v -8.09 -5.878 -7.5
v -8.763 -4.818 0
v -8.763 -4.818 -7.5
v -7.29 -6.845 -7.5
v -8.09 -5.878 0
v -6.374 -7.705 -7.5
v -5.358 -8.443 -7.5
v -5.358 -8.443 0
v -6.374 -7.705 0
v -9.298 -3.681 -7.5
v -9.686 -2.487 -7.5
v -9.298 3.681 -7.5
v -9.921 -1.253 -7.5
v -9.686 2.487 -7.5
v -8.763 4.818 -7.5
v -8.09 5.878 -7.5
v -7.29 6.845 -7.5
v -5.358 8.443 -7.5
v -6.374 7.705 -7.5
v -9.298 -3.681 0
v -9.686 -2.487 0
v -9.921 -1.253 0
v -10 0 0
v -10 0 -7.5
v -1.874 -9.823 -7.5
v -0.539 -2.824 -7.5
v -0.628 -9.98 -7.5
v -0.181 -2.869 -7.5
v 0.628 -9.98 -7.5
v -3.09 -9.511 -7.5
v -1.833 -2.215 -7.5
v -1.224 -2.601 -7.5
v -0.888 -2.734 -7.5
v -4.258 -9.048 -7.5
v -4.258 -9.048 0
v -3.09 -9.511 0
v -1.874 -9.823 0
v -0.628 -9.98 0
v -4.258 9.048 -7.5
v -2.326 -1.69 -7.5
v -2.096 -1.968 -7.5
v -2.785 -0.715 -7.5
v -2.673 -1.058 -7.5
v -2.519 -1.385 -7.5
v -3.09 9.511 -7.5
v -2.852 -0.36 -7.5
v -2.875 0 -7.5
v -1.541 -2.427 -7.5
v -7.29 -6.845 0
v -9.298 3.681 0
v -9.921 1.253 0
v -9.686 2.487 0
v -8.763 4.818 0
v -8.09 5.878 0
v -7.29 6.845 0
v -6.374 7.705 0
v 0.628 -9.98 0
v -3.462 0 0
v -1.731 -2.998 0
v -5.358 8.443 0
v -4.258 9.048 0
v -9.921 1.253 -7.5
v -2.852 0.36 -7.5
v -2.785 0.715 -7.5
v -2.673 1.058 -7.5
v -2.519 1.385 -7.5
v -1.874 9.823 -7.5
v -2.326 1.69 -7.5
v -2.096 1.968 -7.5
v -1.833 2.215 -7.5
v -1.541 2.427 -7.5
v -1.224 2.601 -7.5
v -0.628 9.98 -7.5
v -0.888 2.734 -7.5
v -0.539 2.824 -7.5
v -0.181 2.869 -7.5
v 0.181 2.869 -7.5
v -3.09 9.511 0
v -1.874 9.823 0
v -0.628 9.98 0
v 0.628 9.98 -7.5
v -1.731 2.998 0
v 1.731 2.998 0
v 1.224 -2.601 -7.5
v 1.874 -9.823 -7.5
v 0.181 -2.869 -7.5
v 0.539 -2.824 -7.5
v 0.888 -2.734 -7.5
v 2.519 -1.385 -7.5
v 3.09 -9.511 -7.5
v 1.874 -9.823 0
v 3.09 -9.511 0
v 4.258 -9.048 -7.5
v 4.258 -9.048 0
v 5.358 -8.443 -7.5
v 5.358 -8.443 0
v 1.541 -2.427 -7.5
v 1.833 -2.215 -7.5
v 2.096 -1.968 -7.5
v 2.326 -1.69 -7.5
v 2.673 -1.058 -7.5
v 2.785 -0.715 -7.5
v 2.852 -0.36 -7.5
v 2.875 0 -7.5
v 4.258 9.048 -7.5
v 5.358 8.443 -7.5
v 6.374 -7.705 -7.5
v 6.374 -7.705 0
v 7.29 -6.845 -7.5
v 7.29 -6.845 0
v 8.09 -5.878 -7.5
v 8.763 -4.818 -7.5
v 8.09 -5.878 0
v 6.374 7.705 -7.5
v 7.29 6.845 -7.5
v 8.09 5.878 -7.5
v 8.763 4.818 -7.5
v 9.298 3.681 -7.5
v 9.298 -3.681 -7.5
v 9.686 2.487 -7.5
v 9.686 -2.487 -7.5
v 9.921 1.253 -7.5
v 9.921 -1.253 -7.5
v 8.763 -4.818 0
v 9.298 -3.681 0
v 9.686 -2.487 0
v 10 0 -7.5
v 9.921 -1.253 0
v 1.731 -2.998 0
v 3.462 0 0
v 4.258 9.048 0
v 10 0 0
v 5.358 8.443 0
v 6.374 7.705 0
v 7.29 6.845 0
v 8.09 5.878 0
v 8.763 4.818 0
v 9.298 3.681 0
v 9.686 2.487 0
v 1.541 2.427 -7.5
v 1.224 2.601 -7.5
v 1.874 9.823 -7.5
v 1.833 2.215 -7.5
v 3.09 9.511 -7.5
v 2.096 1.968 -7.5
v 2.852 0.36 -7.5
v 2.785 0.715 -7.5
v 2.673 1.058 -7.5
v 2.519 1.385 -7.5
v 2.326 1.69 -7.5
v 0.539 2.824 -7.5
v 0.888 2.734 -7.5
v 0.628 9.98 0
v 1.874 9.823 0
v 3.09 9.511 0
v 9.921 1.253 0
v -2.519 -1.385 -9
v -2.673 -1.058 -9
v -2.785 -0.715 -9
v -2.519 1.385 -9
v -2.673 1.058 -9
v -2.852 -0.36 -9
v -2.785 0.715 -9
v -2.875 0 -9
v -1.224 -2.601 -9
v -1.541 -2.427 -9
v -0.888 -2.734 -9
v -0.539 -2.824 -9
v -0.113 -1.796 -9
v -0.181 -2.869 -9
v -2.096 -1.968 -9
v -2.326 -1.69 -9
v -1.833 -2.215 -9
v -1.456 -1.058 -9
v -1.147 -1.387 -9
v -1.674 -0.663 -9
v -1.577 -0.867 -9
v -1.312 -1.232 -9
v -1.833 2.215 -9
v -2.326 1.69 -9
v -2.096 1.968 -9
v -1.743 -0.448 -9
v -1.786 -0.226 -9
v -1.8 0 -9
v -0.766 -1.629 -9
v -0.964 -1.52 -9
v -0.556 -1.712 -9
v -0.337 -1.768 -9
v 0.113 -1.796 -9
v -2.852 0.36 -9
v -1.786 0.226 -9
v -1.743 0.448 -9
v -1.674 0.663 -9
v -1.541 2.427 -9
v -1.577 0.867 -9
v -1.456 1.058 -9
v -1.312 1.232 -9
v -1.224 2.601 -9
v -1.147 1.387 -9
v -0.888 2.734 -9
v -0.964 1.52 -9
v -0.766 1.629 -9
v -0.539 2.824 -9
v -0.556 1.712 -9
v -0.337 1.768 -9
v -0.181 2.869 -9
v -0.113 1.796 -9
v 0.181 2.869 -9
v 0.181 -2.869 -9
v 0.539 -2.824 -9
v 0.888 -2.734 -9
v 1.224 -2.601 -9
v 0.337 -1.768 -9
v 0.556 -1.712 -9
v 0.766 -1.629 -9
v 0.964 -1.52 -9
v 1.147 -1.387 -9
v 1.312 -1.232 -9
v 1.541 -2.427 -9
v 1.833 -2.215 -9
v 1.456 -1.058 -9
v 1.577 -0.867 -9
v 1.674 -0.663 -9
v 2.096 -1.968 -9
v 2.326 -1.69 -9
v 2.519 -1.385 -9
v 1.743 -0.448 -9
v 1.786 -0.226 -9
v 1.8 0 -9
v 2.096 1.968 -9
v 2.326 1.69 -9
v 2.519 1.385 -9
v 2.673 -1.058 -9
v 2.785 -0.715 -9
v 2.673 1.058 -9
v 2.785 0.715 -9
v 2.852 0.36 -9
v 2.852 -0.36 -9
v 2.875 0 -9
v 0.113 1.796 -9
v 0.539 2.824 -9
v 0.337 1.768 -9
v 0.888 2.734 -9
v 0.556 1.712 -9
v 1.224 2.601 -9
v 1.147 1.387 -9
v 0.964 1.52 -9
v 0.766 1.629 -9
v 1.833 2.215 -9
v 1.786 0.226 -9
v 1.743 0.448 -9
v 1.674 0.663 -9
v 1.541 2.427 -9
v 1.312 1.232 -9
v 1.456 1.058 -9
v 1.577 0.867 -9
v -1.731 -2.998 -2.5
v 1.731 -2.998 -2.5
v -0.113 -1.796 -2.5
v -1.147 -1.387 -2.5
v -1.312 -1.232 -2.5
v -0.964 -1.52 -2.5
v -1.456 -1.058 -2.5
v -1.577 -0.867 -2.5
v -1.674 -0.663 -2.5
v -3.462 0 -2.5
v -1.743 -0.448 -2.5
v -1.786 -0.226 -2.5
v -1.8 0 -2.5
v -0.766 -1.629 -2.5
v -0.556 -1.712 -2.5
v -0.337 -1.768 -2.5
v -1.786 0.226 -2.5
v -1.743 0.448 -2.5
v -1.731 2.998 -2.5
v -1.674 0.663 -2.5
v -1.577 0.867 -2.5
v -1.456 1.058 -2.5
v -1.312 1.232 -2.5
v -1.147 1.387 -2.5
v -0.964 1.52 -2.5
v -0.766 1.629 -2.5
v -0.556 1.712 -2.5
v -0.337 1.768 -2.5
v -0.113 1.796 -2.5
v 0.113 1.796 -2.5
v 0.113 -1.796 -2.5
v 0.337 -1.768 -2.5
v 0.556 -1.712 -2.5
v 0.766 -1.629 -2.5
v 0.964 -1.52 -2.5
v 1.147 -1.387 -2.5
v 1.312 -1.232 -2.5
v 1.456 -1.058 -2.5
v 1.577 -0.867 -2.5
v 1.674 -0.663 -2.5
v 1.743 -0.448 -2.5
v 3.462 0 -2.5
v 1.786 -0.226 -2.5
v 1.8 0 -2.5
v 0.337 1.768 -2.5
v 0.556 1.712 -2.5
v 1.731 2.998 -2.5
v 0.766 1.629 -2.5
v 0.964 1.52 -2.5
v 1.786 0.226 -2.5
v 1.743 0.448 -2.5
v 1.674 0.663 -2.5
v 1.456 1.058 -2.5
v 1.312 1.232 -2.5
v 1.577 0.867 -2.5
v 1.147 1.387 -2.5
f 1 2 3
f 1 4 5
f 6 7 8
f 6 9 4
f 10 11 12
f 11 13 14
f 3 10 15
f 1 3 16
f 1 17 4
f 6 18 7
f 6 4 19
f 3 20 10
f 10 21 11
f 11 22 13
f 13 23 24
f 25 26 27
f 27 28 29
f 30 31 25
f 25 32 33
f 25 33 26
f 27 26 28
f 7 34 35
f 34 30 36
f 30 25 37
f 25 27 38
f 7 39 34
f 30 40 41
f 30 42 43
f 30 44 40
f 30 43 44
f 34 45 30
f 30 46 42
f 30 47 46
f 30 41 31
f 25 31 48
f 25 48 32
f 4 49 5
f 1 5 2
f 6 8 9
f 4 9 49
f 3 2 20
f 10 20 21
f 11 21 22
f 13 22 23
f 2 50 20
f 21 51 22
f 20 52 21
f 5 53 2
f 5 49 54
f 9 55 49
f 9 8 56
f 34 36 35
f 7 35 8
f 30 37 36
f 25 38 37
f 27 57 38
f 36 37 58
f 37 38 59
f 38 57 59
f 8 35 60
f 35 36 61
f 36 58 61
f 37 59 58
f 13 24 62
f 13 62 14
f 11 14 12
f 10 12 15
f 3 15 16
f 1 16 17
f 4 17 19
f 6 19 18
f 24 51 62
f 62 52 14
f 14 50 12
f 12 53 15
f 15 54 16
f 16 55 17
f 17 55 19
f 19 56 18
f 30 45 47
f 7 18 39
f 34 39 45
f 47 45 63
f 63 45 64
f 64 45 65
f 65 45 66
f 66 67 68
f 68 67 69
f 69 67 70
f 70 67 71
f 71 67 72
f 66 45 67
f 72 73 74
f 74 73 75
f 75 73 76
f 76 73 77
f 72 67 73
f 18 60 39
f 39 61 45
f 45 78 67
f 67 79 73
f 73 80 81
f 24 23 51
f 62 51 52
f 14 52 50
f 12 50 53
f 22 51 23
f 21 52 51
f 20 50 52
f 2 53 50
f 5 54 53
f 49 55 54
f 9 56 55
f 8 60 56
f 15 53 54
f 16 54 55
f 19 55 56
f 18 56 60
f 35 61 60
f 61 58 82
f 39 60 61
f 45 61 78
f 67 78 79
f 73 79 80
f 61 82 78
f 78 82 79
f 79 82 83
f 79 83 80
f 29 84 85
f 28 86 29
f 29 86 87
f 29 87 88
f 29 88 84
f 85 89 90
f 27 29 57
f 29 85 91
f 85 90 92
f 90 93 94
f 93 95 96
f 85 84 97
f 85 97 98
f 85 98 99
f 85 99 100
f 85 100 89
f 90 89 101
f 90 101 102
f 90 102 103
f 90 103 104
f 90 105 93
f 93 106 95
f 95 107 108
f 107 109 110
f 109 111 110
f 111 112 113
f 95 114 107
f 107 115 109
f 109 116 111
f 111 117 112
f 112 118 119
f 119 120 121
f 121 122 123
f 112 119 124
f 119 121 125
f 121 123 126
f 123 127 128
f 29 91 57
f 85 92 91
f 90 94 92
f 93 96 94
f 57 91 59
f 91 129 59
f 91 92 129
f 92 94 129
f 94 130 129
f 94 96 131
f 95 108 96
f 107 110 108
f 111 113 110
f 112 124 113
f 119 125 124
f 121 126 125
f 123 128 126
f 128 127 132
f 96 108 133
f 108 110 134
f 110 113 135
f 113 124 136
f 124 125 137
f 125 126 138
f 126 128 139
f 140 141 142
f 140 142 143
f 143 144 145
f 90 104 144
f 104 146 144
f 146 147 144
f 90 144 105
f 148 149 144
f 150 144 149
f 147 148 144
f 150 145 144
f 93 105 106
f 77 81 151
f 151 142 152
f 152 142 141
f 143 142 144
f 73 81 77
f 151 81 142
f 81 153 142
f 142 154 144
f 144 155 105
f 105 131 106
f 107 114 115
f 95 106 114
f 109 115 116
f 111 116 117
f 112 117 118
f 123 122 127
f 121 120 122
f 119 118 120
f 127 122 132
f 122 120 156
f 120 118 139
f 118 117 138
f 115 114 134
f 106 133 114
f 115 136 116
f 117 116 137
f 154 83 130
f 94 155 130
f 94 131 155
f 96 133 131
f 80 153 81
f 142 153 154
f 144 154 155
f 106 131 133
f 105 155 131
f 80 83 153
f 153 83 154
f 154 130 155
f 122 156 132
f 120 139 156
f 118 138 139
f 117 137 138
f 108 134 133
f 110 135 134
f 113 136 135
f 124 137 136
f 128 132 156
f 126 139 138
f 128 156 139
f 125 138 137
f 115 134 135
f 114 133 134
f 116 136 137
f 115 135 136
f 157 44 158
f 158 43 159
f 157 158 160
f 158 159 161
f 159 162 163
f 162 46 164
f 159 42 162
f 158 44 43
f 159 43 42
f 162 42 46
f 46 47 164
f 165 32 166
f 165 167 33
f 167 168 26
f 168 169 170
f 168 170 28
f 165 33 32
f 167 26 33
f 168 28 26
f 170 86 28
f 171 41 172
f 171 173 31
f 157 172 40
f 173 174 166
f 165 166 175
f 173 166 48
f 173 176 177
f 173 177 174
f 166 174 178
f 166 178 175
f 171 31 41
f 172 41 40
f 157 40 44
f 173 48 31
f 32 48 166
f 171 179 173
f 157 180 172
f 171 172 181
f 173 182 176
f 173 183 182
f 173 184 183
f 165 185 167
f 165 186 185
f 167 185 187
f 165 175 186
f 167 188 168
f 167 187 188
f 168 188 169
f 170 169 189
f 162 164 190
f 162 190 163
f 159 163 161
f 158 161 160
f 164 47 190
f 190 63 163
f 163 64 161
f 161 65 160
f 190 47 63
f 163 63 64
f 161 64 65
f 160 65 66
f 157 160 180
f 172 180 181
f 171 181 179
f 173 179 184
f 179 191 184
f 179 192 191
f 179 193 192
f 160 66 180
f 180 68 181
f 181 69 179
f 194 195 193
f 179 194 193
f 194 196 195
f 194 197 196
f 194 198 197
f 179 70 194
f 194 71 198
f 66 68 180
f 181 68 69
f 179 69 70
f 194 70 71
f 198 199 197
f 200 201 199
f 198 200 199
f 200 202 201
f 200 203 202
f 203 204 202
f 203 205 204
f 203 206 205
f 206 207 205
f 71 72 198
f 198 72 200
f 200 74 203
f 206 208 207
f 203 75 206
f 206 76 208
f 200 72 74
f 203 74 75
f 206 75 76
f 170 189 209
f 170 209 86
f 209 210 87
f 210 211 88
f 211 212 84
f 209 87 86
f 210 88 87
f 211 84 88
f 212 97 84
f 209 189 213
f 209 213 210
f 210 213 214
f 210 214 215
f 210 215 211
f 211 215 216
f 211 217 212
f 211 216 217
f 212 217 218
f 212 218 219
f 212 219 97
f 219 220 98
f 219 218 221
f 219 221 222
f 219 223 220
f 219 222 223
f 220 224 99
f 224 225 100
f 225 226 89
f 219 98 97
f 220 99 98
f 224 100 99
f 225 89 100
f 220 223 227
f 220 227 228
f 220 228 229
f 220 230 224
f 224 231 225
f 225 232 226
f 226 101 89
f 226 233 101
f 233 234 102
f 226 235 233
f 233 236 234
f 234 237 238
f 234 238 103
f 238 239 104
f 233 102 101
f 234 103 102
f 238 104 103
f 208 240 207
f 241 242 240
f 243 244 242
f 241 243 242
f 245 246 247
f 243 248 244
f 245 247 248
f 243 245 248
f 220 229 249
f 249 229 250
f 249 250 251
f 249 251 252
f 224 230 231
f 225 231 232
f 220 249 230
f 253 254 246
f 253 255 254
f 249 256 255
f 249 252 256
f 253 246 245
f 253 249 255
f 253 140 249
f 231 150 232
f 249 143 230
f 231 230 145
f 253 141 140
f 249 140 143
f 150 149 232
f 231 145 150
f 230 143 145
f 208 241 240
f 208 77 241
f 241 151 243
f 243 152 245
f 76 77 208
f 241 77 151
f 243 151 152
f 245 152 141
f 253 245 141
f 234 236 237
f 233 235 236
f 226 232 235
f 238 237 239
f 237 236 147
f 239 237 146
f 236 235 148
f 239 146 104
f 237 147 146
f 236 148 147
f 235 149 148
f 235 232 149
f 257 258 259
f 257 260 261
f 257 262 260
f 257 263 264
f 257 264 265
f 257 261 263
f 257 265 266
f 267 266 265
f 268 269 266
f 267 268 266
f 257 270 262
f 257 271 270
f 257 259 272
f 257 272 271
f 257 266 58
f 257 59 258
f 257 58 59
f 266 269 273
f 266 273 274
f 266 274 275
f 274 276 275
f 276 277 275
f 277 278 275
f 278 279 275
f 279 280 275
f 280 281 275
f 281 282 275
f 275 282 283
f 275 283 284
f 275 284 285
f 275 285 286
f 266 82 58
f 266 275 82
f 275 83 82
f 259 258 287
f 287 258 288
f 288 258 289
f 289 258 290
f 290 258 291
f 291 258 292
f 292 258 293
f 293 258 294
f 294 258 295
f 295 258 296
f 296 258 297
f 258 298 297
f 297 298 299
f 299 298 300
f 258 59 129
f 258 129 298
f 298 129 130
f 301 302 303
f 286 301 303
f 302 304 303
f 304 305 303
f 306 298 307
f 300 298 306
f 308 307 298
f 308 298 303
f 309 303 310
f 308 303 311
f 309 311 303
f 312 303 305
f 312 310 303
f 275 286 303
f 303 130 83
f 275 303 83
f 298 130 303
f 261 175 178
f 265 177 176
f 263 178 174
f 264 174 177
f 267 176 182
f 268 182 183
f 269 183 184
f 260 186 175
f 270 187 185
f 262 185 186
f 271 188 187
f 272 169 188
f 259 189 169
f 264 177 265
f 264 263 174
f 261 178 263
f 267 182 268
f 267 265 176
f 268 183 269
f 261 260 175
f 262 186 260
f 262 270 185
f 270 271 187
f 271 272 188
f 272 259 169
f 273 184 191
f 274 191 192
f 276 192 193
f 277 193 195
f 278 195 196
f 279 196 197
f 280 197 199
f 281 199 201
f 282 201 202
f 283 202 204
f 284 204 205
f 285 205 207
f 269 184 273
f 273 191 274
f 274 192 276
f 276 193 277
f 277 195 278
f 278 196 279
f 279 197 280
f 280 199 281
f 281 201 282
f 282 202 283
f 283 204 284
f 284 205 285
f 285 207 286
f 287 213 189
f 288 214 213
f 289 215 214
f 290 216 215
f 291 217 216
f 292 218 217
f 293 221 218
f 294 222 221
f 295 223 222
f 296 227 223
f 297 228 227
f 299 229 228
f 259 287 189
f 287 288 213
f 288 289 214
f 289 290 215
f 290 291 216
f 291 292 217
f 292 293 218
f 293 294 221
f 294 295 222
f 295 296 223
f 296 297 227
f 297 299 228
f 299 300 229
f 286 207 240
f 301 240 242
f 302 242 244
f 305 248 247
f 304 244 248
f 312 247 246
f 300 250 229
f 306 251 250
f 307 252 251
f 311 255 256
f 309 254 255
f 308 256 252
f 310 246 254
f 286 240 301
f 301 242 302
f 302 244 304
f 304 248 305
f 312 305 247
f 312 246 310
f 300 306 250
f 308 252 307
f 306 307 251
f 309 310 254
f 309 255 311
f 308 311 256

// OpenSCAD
$fn = 50;

difference() {
	union() {
		translate(v = [0, 0, -7.5]) {
			cylinder(h = 7.5, r = 10.0);
		}
		#translate(v = [0, 0, -9.0]) {
			cylinder(h = 9, r = 2.875);
		}
	}
	union() {
		translate(v = [0, 0, 0]) {
			rotate(a = [0, 0, 0]) {
				difference() {
					union() {
						translate(v = [0, 0, -2.5]) {
							linear_extrude(height = 2.5) {
								polygon(points = [[3.4619999999999997, 0.0], [1.7310000000000003, 2.9981799479017264], [-1.7309999999999992, 2.9981799479017264], [-3.4619999999999997, 4.2397272186481365e-16], [-1.7310000000000014, -2.998179947901726], [1.7309999999999977, -2.9981799479017277]]);
							}
						}
					}
					union();
				}
			}
		}
		#translate(v = [0, 0, -100.0]) {
			cylinder(h = 200, r = 1.8);
		}
	}
}
